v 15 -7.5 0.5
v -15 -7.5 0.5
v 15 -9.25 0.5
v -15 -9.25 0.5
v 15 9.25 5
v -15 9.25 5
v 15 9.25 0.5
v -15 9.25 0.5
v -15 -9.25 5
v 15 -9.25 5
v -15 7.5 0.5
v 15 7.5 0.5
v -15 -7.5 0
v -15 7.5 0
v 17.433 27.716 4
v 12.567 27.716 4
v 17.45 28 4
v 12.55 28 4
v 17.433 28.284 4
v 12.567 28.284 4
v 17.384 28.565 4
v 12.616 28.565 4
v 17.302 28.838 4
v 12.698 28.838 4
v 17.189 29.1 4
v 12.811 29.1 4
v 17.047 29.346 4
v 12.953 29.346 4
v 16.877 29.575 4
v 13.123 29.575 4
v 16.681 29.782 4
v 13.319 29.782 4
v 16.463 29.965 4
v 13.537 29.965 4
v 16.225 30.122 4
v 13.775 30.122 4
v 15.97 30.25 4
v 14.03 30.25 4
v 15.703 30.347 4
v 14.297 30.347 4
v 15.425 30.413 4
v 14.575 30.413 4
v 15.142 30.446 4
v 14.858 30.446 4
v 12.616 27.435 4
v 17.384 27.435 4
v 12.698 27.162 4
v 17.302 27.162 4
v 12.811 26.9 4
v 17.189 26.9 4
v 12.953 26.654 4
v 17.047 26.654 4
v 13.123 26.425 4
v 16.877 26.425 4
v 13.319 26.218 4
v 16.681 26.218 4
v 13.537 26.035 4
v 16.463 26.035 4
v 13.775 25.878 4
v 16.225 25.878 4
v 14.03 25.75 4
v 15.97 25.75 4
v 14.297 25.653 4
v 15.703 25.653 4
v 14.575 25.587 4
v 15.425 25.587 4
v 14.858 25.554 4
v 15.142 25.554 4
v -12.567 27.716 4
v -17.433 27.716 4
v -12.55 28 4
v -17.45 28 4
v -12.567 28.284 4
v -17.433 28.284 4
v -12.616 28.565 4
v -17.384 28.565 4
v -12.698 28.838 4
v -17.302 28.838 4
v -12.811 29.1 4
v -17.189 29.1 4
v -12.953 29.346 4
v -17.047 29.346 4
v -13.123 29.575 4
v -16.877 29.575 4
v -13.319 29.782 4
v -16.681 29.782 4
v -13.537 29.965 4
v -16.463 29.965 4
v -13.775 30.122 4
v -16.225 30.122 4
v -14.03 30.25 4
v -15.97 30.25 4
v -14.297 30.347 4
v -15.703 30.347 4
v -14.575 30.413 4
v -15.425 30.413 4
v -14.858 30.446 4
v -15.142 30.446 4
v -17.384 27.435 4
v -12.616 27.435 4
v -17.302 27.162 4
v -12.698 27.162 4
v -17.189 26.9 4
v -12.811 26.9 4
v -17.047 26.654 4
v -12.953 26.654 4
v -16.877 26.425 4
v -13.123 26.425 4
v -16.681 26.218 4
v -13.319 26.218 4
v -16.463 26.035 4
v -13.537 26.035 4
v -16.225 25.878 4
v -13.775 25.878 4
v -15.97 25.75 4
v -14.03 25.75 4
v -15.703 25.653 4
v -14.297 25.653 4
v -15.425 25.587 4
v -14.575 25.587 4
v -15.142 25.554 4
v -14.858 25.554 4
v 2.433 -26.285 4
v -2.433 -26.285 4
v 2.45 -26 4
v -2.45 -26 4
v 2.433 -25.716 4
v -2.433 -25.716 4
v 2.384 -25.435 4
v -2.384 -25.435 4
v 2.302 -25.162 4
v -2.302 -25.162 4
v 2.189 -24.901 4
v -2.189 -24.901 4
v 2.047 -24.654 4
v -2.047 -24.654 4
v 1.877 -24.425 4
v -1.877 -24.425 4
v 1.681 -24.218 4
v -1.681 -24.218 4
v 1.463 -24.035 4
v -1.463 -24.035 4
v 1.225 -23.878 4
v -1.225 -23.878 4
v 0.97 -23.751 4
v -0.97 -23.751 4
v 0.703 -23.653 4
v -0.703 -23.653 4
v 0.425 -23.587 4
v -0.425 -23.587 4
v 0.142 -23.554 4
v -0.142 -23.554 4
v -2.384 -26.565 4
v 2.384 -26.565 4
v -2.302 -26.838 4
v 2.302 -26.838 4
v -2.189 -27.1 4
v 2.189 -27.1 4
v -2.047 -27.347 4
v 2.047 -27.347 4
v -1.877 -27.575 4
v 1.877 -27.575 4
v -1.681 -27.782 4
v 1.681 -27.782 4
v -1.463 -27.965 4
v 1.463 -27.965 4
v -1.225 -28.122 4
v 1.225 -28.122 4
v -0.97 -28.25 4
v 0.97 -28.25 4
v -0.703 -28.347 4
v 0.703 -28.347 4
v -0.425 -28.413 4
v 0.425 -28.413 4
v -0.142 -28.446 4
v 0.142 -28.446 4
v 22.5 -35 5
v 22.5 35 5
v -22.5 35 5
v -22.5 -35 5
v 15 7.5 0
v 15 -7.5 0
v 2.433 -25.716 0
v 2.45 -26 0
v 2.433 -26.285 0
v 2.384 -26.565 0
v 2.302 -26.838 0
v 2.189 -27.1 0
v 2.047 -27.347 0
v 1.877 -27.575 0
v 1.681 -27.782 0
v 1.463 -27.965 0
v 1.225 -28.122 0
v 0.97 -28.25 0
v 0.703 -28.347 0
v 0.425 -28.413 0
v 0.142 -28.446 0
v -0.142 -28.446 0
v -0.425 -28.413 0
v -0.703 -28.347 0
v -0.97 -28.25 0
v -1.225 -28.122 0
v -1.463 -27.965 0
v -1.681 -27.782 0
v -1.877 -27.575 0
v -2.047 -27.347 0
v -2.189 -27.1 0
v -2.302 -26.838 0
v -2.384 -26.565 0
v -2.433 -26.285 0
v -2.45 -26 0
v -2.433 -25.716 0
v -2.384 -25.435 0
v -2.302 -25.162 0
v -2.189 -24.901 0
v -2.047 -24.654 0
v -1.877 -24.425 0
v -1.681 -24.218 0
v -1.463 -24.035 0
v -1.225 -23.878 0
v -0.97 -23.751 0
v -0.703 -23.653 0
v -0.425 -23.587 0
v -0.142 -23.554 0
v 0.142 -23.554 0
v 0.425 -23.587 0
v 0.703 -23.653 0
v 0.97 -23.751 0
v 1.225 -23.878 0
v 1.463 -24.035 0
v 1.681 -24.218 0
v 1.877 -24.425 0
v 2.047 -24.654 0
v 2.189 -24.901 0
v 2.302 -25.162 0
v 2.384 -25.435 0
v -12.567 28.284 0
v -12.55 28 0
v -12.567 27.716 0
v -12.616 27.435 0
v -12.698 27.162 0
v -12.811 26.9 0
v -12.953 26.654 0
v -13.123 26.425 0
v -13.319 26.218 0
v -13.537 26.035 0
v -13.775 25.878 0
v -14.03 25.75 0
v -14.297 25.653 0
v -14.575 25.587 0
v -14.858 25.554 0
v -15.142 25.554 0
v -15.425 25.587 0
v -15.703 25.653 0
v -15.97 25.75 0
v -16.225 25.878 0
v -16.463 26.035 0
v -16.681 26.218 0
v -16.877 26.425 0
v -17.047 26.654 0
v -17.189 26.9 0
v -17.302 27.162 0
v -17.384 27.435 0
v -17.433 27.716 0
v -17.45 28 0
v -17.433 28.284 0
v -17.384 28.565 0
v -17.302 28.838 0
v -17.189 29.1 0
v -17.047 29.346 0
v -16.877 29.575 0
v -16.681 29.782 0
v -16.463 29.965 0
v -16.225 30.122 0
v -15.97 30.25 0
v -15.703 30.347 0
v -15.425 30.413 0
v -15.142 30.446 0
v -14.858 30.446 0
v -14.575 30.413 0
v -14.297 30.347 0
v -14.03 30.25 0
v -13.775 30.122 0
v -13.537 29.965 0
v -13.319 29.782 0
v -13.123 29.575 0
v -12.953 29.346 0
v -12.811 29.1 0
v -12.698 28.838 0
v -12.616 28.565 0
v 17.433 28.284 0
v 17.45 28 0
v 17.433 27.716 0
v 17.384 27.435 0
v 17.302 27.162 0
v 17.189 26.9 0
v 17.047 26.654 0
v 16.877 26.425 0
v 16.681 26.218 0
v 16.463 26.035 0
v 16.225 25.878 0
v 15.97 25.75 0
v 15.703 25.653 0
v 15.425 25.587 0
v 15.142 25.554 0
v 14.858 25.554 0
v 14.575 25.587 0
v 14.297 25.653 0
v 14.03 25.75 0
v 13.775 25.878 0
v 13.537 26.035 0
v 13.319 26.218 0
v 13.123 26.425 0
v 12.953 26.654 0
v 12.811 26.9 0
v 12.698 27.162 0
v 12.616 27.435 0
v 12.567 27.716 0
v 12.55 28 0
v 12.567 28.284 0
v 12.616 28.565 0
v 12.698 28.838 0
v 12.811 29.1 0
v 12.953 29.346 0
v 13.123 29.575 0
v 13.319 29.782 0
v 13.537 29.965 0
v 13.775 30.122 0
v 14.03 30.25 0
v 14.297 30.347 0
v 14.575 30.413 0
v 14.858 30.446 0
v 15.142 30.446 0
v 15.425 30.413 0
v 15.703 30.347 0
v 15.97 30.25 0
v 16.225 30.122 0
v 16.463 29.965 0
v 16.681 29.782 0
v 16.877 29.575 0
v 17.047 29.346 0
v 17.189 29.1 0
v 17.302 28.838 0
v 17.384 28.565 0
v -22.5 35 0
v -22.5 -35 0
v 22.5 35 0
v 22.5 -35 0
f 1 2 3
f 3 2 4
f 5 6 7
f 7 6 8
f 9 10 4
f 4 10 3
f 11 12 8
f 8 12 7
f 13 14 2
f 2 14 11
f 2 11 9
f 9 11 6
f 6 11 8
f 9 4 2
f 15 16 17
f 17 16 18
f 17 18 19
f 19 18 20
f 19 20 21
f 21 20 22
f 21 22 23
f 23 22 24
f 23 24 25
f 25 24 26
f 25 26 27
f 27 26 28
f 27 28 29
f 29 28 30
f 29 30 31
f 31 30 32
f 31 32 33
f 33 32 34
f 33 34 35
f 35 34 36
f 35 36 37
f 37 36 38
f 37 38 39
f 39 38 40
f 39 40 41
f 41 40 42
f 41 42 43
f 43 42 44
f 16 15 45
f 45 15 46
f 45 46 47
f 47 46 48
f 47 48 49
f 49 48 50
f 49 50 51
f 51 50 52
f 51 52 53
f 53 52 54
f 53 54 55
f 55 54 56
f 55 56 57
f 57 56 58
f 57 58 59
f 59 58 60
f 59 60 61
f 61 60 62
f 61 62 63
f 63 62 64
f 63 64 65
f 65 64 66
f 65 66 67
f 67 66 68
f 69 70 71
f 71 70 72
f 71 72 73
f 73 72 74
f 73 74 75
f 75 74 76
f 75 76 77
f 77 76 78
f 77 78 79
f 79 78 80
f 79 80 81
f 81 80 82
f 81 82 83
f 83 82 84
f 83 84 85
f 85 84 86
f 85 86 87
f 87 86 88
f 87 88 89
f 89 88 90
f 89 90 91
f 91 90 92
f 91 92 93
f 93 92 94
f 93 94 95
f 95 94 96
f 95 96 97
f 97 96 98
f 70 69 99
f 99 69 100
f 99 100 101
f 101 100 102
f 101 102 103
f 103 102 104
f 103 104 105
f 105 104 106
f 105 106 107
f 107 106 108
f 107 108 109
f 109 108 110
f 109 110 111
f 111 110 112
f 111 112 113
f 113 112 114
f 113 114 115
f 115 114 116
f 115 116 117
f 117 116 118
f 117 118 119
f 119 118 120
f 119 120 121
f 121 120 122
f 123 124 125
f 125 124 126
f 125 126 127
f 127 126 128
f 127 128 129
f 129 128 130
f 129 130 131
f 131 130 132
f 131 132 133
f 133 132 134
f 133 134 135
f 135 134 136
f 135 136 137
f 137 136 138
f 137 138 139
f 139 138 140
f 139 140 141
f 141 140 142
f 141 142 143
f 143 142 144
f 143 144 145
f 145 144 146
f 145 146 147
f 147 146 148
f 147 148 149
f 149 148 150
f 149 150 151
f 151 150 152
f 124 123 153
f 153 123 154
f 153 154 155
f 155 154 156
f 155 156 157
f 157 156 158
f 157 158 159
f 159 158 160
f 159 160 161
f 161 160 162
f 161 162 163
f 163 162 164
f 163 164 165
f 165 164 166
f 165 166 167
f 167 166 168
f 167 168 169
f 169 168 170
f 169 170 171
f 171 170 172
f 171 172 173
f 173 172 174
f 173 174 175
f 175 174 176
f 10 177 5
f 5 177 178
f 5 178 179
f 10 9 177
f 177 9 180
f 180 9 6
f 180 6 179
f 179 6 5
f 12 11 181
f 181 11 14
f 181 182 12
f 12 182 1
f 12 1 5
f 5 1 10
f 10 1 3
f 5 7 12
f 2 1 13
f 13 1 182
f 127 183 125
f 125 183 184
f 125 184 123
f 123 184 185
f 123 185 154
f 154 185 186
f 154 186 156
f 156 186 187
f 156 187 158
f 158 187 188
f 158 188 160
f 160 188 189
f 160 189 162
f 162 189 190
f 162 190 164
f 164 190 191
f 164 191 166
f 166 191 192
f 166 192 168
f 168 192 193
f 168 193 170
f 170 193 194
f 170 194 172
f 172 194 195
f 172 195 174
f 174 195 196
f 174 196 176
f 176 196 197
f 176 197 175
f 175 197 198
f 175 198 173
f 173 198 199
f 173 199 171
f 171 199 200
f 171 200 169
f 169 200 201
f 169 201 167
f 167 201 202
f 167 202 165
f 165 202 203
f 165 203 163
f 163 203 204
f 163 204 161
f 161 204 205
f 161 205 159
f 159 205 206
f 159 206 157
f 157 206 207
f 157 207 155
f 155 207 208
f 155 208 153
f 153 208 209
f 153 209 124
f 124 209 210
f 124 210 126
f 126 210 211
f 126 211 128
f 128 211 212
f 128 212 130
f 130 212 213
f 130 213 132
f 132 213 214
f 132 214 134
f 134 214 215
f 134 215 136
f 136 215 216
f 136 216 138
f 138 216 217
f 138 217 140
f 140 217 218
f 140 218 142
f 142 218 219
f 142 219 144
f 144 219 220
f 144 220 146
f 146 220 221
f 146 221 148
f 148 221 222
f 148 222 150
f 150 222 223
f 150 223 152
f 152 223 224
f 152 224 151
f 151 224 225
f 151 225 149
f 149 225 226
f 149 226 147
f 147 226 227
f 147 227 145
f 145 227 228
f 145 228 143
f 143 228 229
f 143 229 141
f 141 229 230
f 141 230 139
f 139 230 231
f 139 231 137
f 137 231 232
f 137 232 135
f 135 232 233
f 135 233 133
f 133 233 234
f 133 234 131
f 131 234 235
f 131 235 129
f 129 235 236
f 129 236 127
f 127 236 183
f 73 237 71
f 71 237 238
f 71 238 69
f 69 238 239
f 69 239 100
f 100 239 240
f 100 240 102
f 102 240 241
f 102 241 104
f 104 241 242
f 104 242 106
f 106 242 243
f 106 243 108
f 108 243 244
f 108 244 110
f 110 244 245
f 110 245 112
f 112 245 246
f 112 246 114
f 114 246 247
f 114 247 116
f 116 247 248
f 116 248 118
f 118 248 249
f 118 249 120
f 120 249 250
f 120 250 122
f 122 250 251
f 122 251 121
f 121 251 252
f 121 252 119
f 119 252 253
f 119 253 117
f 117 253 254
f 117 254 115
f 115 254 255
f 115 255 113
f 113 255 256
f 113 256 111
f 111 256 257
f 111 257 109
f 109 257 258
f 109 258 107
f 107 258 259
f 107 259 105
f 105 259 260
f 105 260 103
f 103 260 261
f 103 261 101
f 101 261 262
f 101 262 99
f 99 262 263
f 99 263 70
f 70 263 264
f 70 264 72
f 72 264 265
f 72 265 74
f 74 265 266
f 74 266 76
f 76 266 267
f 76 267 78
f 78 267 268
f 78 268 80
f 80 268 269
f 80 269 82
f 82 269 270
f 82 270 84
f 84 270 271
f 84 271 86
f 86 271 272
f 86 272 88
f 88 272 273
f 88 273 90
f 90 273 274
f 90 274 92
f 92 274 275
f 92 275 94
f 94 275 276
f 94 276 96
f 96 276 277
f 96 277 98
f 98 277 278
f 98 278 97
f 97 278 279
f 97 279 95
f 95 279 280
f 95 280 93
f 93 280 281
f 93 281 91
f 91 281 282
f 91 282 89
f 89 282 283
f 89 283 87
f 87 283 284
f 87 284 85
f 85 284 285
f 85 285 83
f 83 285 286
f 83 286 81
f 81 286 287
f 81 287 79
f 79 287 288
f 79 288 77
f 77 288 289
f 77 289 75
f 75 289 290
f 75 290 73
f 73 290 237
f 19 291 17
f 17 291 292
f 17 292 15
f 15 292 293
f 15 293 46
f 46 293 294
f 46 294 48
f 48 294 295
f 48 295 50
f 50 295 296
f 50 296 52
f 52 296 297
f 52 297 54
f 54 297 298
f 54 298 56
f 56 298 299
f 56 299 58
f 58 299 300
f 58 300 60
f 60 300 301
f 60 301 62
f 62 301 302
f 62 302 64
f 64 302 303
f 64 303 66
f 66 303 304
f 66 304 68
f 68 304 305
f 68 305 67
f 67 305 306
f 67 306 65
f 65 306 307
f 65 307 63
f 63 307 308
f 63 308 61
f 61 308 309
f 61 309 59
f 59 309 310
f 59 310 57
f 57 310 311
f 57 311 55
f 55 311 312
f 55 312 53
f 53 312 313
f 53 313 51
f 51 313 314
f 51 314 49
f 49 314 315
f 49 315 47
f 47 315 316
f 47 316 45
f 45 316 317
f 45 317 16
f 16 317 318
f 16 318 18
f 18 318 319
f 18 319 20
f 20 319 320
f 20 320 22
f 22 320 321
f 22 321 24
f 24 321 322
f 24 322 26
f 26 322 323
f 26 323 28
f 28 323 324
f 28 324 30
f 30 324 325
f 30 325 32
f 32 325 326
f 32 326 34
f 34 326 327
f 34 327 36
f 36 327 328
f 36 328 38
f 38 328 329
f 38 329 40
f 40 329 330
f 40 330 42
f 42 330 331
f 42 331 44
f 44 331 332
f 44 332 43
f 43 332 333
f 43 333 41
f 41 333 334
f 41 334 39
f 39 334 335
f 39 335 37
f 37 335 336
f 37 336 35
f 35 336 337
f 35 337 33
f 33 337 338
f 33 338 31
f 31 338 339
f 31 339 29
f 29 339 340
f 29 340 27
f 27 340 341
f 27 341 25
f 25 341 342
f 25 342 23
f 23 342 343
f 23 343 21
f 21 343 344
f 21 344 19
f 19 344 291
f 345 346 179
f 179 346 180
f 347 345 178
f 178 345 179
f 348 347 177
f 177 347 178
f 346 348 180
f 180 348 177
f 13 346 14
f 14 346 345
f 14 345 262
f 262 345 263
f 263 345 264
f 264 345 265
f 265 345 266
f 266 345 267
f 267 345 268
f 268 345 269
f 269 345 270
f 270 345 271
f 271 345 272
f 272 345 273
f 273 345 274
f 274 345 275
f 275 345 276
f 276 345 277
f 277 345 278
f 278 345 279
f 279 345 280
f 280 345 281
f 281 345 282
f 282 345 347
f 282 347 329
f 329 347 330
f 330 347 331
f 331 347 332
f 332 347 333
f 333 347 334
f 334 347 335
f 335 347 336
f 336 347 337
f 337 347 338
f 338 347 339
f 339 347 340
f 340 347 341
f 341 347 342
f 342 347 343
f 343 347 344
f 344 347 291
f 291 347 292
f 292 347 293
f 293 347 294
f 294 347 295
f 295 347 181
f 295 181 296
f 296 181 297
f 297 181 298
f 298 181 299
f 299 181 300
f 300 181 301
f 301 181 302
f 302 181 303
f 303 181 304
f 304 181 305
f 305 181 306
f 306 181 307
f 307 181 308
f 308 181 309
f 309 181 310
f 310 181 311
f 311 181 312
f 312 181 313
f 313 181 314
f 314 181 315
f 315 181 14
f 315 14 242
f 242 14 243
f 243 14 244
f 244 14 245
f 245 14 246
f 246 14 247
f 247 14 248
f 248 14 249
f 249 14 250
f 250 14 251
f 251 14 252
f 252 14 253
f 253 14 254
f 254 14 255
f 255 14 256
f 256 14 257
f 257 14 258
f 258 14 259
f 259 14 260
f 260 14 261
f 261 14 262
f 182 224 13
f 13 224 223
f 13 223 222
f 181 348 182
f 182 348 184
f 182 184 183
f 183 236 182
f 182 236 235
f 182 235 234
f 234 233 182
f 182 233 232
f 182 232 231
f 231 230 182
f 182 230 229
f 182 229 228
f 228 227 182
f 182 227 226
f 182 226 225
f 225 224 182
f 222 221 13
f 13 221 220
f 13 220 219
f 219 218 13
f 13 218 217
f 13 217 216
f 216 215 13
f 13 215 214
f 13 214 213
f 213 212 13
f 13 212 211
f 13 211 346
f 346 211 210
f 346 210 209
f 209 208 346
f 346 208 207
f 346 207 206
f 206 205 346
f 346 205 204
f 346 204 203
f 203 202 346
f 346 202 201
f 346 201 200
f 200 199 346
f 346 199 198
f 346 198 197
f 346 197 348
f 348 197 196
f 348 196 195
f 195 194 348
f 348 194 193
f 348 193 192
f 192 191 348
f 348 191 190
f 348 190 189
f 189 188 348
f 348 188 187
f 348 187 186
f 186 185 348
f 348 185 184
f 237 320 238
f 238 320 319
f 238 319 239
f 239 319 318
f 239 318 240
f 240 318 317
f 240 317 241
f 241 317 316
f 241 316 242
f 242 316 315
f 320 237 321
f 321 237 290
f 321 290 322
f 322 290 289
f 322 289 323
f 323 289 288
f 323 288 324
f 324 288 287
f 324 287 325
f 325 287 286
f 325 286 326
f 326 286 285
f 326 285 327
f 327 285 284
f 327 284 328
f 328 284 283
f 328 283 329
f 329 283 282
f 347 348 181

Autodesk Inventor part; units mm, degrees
ref_plane "YZ Plane" through (0, 0, 0) normal (1, 0, 0) x (0, 1, 0)
ref_plane "XZ Plane" through (0, 0, 0) normal (0, 1, 0) x (-1, 0, 0)
ref_plane "XY Plane" through (0, 0, 0) normal (0, 0, 1) x (1, 0, 0)
ref_plane "Work Plane1" through (0, 0, 0) normal (0, 0, 1) x (1, 0, 0)
sketch "Sketch1" plane through (0, 0, 0) normal (0, 0, 1) x (1, 0, 0)
  circle A0 centre (15, 28) radius 2.45 projected
  circle A1 centre (-15, 28) radius 2.45 projected
  circle A2 centre (0, -26.0002) radius 2.45 projected
  line L0 (-22.5, -35) -> (22.5, -35)
  line L1 (22.5, -35) -> (22.5, 35)
  line L2 (22.5, 35) -> (-22.5, 35)
  line L3 (-22.5, 35) -> (-22.5, -35)
  line L4 (-22.5, -35) -> (22.5, 35) construction
  line L5 (22.5, -35) -> (-22.5, 35) construction
  line L6 (-15, -7.5) -> (15, -7.5)
  line L7 (15, -7.5) -> (15, 7.5)
  line L8 (15, 7.5) -> (-15, 7.5)
  line L9 (-15, 7.5) -> (-15, -7.5)
  line L10 (-15, -7.5) -> (15, 7.5) construction
  line L11 (15, -7.5) -> (-15, 7.5) construction
  point P0 (0, 0)
  dimension "d0" = 45
  dimension "d1" = 70
  dimension "d2" = 30
  dimension "d3" = 15
extrude "Extrusion1" add sketch "Sketch1" along normal blind 4
sketch "Sketch2" plane through (0, 0, 4) normal (0, 0, 1) x (1, 0, 0)
  point P0 (0, 0)
sketch "Sketch3" plane through (0, 0, 4) normal (0, 0, 1) x (1, 0, 0)
  line L0 (-15, -7.5) -> (-15, 7.5) projected
  line L1 (-15, 7.5) -> (15, 7.5) projected
  line L2 (15, 7.5) -> (15, -7.5) projected
  line L3 (15, -7.5) -> (-15, -7.5) projected
  circle A0 centre (0, -26.0002) radius 2.45 projected
  circle A1 centre (-15, 28) radius 2.45 projected
  circle A2 centre (15, 28) radius 2.45 projected
  line L4 (-22.5, -35) -> (22.5, -35) projected
  line L5 (22.5, -35) -> (22.5, 35) projected
  line L6 (22.5, 35) -> (-22.5, 35) projected
  line L7 (-22.5, 35) -> (-22.5, -35) projected
  point P0 (0, 0)
extrude "Extrusion2" add sketch "Sketch3" along normal blind 1 contours A0 | A1 | A2 | L7 L6 L5 L4
sketch "Sketch4" plane through (0, 0, 5) normal (0, 0, 1) x (1, 0, 0)
  line L0 (-15, -9.25) -> (15, -9.25)
  line L1 (15, -9.25) -> (15, 9.25)
  line L2 (15, 9.25) -> (-15, 9.25)
  line L3 (-15, 9.25) -> (-15, -9.25)
  line L4 (-15, -9.25) -> (15, 9.25) construction
  line L5 (15, -9.25) -> (-15, 9.25) construction
  point P0 (0, 0)
  dimension "d8" = 30
  dimension "d9" = 18.5
extrude "Extrusion3" cut sketch "Sketch4" against normal blind 4.5
properties part number "03_MountCoverslip"
